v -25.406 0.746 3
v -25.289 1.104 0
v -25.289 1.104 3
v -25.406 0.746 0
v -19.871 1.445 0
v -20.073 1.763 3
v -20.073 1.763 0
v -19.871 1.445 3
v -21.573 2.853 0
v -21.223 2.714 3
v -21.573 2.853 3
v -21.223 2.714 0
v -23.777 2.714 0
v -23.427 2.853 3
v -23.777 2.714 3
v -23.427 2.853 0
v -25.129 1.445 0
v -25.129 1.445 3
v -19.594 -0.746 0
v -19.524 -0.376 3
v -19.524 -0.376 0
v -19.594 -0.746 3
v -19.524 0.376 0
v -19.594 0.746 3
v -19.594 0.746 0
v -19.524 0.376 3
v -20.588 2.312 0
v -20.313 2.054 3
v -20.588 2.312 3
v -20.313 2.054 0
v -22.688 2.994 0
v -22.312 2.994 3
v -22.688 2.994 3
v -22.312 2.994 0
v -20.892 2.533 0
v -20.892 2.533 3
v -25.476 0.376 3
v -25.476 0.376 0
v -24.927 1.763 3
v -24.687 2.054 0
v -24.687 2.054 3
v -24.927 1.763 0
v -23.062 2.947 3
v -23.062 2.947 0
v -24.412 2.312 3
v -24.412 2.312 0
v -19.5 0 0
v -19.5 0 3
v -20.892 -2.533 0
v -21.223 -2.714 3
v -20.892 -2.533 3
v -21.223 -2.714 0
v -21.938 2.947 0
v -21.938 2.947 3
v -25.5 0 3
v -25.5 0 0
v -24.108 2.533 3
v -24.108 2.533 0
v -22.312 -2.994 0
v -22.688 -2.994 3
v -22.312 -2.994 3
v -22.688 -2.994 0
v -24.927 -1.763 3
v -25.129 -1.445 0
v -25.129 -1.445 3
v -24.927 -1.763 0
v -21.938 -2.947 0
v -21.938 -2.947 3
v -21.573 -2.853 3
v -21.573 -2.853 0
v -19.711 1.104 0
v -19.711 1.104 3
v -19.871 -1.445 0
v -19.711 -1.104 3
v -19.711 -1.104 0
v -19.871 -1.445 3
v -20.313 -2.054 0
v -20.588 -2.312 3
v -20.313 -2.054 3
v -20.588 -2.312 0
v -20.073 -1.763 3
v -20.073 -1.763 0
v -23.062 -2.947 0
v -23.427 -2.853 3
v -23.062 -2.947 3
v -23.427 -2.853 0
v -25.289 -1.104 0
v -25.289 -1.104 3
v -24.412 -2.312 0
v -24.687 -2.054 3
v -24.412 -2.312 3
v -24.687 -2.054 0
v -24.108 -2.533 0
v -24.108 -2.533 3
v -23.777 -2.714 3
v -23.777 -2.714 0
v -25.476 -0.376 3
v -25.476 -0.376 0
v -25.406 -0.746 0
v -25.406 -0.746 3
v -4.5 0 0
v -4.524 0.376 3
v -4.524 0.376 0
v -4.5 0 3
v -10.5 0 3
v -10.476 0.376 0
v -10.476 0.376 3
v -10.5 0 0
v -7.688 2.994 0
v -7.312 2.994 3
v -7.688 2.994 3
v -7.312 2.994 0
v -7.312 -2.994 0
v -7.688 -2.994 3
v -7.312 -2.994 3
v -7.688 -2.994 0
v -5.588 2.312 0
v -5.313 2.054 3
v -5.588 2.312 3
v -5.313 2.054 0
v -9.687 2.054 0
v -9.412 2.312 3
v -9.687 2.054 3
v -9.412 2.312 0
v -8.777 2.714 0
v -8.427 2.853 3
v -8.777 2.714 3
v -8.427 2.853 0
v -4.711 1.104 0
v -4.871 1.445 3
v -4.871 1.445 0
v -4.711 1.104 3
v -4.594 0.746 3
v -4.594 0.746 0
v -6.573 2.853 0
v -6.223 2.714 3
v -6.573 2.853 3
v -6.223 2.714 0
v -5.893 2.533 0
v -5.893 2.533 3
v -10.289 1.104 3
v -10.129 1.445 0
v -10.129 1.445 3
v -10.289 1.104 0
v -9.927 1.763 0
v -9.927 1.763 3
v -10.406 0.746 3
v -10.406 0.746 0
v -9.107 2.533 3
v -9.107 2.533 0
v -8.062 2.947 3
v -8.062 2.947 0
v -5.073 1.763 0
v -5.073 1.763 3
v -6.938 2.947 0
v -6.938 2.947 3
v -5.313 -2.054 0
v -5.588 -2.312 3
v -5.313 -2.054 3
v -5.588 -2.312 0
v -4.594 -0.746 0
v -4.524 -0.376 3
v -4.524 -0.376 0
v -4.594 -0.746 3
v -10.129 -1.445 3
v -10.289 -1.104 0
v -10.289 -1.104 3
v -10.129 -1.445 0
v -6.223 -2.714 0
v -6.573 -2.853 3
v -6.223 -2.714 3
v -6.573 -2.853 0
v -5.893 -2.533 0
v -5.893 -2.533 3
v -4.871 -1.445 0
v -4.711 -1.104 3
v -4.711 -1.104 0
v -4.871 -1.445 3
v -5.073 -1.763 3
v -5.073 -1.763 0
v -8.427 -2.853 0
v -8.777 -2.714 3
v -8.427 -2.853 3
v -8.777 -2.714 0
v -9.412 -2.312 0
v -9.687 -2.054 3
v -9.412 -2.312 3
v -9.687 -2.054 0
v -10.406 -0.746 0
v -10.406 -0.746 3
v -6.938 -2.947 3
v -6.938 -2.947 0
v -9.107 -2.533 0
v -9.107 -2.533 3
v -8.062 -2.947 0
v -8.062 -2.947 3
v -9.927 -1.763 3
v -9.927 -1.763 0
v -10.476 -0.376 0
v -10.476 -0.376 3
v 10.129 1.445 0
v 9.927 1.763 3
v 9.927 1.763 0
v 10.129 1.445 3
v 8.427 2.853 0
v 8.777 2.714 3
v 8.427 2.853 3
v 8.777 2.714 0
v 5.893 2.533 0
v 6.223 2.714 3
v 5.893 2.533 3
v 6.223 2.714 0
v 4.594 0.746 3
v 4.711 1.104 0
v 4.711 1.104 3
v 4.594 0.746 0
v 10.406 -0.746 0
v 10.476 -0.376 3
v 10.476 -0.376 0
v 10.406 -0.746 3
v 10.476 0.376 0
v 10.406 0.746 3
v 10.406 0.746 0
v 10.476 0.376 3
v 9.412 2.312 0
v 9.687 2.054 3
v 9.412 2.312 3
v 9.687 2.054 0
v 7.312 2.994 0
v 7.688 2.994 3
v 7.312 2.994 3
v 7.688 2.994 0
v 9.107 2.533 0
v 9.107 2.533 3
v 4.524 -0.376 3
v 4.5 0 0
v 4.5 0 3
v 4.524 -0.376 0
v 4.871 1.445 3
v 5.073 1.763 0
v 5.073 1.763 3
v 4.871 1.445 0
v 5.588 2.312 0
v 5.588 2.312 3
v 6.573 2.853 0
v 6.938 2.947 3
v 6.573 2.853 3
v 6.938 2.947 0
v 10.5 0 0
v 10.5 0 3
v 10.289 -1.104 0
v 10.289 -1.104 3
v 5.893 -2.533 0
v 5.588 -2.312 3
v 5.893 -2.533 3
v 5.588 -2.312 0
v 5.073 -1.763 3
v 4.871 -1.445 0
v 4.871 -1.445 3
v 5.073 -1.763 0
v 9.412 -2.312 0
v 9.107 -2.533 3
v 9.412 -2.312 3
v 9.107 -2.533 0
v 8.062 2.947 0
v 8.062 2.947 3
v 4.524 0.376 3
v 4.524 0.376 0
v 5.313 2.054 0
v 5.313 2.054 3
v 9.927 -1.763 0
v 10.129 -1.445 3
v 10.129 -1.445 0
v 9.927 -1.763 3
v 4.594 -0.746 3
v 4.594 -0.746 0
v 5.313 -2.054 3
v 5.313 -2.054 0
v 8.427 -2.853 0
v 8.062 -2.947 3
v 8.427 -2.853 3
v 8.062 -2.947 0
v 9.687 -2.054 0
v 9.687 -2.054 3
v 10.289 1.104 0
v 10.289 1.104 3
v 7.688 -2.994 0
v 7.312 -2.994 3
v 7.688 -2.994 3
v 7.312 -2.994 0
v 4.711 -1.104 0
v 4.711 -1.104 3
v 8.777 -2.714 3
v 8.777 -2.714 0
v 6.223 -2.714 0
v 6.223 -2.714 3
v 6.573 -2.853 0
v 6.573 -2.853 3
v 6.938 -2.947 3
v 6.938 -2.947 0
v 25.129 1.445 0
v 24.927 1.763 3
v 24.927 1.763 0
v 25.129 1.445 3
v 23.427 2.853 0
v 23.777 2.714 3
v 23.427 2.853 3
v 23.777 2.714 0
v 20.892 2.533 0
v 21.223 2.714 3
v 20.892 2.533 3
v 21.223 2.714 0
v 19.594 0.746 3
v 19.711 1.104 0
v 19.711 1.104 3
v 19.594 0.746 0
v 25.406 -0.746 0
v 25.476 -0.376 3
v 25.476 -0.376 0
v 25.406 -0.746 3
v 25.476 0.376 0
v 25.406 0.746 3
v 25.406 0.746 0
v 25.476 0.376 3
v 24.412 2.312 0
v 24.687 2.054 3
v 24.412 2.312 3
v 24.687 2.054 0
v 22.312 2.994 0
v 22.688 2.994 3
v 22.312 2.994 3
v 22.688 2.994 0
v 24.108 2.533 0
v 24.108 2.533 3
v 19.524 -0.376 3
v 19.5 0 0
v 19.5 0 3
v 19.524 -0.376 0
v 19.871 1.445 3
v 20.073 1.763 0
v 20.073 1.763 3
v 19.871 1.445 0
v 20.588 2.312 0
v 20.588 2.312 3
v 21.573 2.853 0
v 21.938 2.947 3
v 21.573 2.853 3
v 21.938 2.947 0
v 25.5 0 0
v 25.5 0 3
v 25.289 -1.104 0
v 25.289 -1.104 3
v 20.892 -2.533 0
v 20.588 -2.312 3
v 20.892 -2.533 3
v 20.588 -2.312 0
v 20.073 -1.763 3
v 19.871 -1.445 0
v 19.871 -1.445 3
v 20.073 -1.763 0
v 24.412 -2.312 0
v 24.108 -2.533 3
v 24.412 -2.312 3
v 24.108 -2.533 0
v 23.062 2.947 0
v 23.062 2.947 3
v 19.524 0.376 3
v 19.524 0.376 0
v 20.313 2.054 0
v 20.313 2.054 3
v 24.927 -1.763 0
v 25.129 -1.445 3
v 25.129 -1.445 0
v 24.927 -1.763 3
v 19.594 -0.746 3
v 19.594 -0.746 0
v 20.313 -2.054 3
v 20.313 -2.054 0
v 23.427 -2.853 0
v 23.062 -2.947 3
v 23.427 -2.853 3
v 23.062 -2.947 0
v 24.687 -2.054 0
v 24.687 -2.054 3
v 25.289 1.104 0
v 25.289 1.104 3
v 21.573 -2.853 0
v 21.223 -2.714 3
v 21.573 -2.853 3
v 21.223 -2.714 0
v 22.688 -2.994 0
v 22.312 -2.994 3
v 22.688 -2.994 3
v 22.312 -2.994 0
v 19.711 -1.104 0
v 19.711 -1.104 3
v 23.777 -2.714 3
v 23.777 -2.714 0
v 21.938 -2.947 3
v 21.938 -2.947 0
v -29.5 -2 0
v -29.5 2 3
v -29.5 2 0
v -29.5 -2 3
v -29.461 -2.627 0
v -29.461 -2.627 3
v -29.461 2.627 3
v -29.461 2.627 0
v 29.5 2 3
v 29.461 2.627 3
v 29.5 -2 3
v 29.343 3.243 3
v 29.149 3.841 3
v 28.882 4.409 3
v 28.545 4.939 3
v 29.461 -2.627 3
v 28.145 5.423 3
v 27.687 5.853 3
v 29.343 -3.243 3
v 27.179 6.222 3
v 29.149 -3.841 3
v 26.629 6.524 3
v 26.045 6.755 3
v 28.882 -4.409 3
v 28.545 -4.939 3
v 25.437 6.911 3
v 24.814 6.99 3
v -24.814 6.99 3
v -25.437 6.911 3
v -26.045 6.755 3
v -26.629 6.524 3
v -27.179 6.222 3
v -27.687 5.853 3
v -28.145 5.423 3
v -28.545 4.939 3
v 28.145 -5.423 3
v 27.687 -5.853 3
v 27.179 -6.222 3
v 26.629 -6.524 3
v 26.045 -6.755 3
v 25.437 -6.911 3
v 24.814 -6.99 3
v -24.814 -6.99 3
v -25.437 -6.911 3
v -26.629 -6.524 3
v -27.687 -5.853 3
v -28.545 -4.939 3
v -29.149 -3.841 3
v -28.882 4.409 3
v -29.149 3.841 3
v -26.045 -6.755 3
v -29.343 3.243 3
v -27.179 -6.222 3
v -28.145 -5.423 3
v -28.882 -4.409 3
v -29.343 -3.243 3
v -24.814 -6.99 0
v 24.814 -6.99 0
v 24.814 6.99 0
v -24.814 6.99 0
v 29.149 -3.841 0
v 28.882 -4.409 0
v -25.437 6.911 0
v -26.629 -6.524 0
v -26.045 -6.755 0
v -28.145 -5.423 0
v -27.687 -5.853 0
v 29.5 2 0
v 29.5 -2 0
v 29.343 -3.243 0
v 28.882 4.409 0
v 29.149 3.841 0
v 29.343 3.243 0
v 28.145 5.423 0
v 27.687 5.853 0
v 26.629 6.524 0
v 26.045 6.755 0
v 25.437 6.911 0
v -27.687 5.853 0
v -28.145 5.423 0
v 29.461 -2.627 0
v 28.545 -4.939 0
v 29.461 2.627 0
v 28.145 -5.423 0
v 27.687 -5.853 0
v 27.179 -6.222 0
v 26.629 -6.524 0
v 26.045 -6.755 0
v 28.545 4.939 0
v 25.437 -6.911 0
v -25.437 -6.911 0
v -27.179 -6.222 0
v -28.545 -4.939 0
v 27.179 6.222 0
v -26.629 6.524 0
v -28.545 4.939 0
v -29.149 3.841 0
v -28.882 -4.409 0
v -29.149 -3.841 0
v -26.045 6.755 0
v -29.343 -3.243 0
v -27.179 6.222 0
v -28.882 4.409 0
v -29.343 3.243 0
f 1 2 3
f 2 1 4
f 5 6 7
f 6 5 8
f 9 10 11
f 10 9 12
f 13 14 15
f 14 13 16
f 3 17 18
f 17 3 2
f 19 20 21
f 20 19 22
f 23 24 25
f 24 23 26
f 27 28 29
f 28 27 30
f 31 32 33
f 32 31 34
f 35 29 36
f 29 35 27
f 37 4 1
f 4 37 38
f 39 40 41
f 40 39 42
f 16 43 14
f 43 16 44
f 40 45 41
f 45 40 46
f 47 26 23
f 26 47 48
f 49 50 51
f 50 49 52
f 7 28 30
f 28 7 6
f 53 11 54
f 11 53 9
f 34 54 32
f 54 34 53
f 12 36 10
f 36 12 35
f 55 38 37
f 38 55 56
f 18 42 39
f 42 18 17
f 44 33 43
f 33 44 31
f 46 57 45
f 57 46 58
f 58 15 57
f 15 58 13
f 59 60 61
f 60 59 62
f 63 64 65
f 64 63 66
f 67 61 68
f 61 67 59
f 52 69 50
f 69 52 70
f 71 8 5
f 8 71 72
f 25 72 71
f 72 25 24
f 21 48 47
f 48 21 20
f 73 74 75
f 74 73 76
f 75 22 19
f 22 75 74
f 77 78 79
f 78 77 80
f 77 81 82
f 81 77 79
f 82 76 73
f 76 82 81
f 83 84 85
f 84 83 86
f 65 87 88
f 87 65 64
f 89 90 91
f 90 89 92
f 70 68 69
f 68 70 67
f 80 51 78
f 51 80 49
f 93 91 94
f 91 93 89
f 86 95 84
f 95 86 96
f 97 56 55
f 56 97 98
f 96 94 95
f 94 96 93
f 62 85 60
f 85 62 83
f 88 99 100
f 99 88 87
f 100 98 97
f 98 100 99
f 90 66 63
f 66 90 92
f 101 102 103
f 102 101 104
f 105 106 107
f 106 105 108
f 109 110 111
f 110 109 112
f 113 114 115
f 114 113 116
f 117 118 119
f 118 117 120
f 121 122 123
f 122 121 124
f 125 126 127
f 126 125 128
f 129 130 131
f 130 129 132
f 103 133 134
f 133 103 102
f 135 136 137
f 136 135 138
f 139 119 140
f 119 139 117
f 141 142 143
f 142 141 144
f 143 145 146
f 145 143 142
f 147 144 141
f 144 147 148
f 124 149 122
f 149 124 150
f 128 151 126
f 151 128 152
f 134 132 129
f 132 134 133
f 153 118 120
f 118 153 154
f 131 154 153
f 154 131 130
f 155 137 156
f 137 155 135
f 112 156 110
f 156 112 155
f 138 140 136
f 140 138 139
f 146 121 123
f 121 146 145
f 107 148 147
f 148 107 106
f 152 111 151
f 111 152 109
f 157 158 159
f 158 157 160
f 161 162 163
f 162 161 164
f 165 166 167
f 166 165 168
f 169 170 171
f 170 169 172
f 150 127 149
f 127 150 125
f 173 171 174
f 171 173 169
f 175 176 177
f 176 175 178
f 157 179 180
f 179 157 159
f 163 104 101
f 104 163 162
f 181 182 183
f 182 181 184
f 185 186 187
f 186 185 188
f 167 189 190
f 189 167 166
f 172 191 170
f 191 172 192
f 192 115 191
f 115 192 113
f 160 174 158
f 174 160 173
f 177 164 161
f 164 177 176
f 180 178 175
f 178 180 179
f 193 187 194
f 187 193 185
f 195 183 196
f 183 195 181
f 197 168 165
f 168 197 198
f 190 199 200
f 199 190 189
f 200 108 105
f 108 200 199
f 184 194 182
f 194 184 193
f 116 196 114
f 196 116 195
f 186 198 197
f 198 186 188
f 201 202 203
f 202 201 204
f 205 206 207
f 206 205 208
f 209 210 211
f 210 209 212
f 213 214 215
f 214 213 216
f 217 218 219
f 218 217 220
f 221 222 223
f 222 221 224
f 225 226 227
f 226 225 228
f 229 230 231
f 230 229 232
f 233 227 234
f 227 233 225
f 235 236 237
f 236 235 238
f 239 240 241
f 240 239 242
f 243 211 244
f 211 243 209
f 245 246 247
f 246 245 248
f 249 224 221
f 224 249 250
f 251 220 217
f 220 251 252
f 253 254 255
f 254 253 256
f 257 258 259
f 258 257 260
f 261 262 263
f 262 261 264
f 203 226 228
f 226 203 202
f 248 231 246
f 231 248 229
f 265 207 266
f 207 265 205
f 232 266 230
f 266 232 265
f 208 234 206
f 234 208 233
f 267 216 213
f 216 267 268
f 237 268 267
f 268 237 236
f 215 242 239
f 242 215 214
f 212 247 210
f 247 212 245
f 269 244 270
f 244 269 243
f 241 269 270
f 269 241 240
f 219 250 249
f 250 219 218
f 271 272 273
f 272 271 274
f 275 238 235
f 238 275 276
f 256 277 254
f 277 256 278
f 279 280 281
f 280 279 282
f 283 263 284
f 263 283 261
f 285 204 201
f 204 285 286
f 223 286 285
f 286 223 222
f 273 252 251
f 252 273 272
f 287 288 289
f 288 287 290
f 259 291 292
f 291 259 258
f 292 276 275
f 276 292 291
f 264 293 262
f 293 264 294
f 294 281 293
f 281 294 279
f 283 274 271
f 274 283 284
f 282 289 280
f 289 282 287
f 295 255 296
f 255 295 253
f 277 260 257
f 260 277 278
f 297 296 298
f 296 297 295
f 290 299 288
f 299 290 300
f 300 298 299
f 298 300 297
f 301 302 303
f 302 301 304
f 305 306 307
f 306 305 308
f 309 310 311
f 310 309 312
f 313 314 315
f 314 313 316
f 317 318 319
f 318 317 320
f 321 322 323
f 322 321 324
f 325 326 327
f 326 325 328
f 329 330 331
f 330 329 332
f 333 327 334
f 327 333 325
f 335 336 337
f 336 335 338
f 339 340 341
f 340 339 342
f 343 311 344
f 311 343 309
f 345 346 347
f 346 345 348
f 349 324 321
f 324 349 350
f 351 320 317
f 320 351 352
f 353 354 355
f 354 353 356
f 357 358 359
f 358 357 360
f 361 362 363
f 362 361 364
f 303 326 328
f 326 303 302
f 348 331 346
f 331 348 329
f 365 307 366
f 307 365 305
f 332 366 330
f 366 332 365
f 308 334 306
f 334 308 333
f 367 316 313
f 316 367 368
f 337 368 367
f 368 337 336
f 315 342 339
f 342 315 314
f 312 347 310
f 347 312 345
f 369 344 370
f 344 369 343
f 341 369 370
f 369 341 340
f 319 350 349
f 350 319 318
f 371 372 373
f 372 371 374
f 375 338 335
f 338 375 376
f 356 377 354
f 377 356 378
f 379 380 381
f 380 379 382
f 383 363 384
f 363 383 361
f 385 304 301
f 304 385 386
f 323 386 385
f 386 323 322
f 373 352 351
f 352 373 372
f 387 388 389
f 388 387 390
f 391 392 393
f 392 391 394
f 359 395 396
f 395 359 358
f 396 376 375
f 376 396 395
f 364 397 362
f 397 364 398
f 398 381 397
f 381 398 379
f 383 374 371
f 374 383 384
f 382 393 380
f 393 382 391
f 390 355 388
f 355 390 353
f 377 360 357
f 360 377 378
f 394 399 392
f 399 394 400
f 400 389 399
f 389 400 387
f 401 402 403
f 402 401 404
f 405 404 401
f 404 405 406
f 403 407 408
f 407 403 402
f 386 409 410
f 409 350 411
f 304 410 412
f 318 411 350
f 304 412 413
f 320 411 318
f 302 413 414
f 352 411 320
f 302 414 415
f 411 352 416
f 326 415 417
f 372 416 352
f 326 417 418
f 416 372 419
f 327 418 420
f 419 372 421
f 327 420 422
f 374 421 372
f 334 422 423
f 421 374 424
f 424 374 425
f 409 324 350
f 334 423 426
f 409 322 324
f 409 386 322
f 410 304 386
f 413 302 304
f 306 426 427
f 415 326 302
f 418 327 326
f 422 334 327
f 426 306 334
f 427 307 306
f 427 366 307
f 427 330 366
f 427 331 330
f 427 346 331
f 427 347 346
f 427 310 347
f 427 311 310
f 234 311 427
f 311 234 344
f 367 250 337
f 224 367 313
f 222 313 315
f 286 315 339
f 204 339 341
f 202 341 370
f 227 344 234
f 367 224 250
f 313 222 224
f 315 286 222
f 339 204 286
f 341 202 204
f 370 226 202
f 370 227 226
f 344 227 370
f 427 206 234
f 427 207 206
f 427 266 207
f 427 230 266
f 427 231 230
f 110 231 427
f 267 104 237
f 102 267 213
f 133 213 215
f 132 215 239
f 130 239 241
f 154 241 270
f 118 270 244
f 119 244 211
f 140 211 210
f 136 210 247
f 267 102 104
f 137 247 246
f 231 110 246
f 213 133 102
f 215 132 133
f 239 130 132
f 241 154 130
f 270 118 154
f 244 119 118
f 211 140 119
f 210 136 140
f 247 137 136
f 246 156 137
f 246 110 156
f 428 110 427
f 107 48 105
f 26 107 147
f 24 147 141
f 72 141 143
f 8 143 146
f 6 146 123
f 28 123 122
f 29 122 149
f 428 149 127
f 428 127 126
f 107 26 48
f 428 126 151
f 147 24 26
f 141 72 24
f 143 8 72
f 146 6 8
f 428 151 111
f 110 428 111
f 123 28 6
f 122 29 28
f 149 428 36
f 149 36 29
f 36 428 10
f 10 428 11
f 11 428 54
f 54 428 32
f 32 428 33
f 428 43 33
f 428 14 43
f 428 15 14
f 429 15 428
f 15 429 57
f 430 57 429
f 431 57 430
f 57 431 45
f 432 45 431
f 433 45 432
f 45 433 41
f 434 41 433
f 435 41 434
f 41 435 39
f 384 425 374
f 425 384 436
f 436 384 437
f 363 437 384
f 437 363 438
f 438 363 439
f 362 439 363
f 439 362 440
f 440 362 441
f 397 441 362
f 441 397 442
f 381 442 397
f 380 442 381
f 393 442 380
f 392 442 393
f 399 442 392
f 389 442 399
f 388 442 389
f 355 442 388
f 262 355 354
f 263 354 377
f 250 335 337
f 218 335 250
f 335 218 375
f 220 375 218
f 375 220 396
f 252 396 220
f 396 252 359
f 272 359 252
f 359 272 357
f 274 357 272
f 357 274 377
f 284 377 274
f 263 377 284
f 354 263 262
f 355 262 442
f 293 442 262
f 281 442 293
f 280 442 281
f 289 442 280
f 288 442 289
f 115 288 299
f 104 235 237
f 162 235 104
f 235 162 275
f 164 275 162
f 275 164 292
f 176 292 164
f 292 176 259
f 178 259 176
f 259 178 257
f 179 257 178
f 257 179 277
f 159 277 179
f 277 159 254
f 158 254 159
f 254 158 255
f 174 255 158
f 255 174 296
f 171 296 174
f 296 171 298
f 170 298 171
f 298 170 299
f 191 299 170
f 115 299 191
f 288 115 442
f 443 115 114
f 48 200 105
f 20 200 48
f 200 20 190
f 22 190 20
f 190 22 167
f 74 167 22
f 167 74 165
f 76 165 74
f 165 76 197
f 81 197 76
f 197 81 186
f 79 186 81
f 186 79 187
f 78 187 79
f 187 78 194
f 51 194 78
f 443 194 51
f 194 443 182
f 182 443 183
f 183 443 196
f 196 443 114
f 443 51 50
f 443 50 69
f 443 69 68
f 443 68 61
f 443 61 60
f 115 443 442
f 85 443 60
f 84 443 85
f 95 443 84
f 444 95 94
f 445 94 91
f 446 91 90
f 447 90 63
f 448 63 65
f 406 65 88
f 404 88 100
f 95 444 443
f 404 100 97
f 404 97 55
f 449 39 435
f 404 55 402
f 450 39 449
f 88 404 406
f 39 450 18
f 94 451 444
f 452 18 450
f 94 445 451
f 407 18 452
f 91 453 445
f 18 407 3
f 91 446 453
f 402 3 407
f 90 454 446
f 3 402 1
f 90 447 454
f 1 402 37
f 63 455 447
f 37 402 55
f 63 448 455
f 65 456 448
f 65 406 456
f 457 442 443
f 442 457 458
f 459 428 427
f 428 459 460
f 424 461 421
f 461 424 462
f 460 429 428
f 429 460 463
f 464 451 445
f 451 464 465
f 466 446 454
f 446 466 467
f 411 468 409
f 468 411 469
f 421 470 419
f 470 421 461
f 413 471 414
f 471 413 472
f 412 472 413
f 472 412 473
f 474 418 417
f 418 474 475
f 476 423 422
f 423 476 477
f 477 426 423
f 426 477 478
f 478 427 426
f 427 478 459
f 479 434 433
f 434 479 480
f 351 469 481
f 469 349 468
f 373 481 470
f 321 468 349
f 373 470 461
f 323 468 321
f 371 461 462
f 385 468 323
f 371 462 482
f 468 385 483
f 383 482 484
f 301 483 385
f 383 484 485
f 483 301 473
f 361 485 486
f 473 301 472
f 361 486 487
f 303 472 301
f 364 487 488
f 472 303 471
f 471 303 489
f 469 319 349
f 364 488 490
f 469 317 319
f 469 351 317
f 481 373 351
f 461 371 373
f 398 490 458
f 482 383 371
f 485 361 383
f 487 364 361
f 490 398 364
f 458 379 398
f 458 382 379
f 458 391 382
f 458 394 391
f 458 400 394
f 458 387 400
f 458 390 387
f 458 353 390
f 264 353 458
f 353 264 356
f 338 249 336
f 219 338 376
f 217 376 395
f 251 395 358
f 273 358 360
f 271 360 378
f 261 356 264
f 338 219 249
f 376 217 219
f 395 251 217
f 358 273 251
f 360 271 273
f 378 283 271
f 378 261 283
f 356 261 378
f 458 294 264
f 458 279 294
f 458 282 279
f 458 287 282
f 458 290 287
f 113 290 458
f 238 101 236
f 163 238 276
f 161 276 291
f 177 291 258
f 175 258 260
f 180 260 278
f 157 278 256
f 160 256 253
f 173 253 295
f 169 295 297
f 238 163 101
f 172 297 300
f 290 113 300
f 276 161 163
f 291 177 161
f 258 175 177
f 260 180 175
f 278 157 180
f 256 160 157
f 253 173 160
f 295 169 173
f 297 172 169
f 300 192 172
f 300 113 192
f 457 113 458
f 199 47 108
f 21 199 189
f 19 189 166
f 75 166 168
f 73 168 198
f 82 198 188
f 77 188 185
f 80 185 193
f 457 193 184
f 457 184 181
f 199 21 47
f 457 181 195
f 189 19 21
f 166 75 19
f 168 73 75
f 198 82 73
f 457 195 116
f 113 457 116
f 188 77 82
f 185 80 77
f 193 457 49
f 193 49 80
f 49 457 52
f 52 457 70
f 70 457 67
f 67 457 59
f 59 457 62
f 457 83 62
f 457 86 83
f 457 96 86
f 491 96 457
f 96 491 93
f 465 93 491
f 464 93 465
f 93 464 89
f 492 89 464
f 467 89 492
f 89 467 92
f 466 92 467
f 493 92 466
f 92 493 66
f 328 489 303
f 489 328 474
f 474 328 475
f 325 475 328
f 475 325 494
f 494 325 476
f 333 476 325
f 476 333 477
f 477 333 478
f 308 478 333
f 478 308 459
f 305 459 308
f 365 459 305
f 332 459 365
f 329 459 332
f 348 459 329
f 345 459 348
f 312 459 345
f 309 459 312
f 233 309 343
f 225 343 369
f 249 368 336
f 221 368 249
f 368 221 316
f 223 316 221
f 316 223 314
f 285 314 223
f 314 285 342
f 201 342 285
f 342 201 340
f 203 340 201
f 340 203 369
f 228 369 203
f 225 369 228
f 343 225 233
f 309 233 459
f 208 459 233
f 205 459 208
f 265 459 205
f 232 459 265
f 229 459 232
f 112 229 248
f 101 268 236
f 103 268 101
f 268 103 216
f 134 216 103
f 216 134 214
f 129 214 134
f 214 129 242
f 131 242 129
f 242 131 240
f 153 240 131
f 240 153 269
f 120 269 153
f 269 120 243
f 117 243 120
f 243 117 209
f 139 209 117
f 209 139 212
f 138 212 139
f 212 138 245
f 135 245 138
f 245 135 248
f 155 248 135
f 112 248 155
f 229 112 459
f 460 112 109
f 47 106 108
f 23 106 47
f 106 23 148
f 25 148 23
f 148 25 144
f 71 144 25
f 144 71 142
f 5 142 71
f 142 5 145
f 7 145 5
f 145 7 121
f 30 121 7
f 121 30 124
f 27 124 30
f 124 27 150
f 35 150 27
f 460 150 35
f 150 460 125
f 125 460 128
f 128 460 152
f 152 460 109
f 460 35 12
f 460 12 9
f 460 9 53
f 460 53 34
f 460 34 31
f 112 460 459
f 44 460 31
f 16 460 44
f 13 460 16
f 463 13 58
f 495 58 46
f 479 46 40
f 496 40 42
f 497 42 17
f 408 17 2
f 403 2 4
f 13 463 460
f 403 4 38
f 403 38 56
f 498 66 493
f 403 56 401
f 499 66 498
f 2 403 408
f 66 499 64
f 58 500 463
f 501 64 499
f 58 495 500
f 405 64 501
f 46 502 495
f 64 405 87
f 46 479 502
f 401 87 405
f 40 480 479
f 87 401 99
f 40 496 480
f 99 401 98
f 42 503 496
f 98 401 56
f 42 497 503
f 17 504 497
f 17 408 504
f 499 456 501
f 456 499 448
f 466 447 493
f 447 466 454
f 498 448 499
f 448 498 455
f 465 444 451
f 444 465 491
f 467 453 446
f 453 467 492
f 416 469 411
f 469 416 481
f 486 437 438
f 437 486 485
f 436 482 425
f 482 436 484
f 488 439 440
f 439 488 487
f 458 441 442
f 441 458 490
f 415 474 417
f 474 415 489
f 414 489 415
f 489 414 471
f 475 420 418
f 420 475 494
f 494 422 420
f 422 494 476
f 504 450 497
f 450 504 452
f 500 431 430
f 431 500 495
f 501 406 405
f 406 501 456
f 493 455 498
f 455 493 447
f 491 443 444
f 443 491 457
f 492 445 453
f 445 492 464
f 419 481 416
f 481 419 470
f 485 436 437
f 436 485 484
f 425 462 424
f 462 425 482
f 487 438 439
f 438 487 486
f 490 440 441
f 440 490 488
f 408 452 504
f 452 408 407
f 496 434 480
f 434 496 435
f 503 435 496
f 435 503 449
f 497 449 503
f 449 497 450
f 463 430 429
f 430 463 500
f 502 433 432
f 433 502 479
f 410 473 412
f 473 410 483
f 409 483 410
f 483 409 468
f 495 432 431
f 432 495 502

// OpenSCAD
// Generated by SolidPython 1.1.3 on 2023-03-12 21:54:24
$fn = 50;


difference() {
	union() {
		translate(v = [0, 0, 0]) {
			rotate(a = [0, 0, 0]) {
				hull() {
					translate(v = [-24.5000000000, 2.0000000000, 0]) {
						rotate(a = [0, 0, 0]) {
							translate(v = [0, 0, 0]) {
								rotate(a = [0, 0, 0]) {
									cylinder(h = 3, r = 5);
								}
							}
						}
					}
					translate(v = [24.5000000000, 2.0000000000, 0]) {
						rotate(a = [0, 0, 0]) {
							translate(v = [0, 0, 0]) {
								rotate(a = [0, 0, 0]) {
									cylinder(h = 3, r = 5);
								}
							}
						}
					}
					translate(v = [-24.5000000000, -2.0000000000, 0]) {
						rotate(a = [0, 0, 0]) {
							translate(v = [0, 0, 0]) {
								rotate(a = [0, 0, 0]) {
									cylinder(h = 3, r = 5);
								}
							}
						}
					}
					translate(v = [24.5000000000, -2.0000000000, 0]) {
						rotate(a = [0, 0, 0]) {
							translate(v = [0, 0, 0]) {
								rotate(a = [0, 0, 0]) {
									cylinder(h = 3, r = 5);
								}
							}
						}
					}
				}
			}
		}
	}
	union() {
		translate(v = [-22.5000000000, 0.0000000000, 0]) {
			rotate(a = [0, 0, 0]) {
				translate(v = [0, 0, -50]) {
					rotate(a = [0, 0, 0]) {
						cylinder(h = 100, r = 3.0000000000);
					}
				}
			}
		}
		translate(v = [-7.5000000000, 0.0000000000, 0]) {
			rotate(a = [0, 0, 0]) {
				translate(v = [0, 0, -50]) {
					rotate(a = [0, 0, 0]) {
						cylinder(h = 100, r = 3.0000000000);
					}
				}
			}
		}
		translate(v = [7.5000000000, 0.0000000000, 0]) {
			rotate(a = [0, 0, 0]) {
				translate(v = [0, 0, -50]) {
					rotate(a = [0, 0, 0]) {
						cylinder(h = 100, r = 3.0000000000);
					}
				}
			}
		}
		translate(v = [22.5000000000, 0.0000000000, 0]) {
			rotate(a = [0, 0, 0]) {
				translate(v = [0, 0, -50]) {
					rotate(a = [0, 0, 0]) {
						cylinder(h = 100, r = 3.0000000000);
					}
				}
			}
		}
	}
}
/***********************************************
*********      SolidPython code:      **********
************************************************
 
from solid import *
import os
import subprocess

import oomB

import opsc_library_gen

mode = "laser"
#mode = "3d_print"

defined_objects = {}

radius_dict = {}
countersunk_dict = {}


def set_mode(m):
    global mode
    mode = m
    radius_dict['M6'] = 6.5/2
    radius_dict['M3'] = 3.3/2
    if mode == "laser":
        radius_dict['M6'] = 6/2
        radius_dict['M3'] = 3/2

    countersunk_dict['M3'] = {}
    countersunk_dict['M3']['little_rad'] = radius_dict['M3']
    countersunk_dict['M3']['big_rad'] = (5.5+0.6)/2
    if mode == "laser":
        countersunk_dict['M3']['big_rad'] = (4.75+0.6)/2
        countersunk_dict['M3']['little_rad'] = (4.75+0.6)/2

    countersunk_dict['M3']['height'] = 1.7


def opsc_make_object(filename, objects, save_type="none",resolution=50, layers = 1, tilediff = 200, mode="laser", overwrite=True):
    if overwrite or not os.path.exists(filename):
        set_mode(mode)
        save_type = save_type.lower()
        os.makedirs(os.path.dirname(filename), exist_ok=True)
        final_object = opsc_get_object(objects, mode = mode)
        # Save the final object to the specified filename    
        scad_render_to_file(final_object, filename, file_header='$fn = %s;' % resolution, include_orig_code=True)
        if mode == "laser":
            filename_laser = filename.replace(".scad","-flat.scad")
            scad_render_to_file(getLaser(final_object, layers=layers, tilediff=tilediff), filename_laser, file_header='$fn = %s;' % resolution, include_orig_code=True)
            if save_type == "all":
                saveToAll(filename_laser)
            elif save_type == "dxf":
                saveToDxf(filename_laser)
        if save_type == "all":
            saveToAll(filename)
        elif save_type == "dxf":
            saveToDxf(filename)


def opsc_get_object(objects, mode = "laser"):
    # Create the solidpython objects only include the positive objects and if they don't have inclusion or their inclusion is either all or mode
    # Initialize an empty list to store the results
    positive_objects = []

    # Iterate over the "objects" list
    for obj in objects:
        # Check if the current object has a "type" key with a value of "positive"
        if obj['type'] == 'positive':
            # Check if the current object has an "inclusion" key and its value matches "mode",
            # or if the current object does not have an "inclusion" key at all
            if not 'inclusion' in obj or obj['inclusion'] == "all" or obj['inclusion'] == mode:
                # Call the "get_opsc_item" function with the current object as an argument
                opsc_item = get_opsc_item(obj)
                # Add the result to the "positive_objects" list
                positive_objects.append(opsc_item)
# Initialize an empty list to store the results
    negative_objects = []

    # Iterate over the "objects" list
    for obj in objects:
        # Check if the current object has a "type" key with a value of "negative"
        if obj['type'] == 'negative':
            # Check if the current object has an "inclusion" key and its value matches "mode",
            # or if the current object does not have an "inclusion" key at all
            if not 'inclusion' in obj or obj['inclusion'] == "all" or obj['inclusion'] == mode:
                # Call the "get_opsc_item" function with the current object as an argument
                opsc_item = get_opsc_item(obj)
                # Add the result to the "negative_objects" list
                negative_objects.append(opsc_item)
    
    #positive_objects = [get_opsc_item(obj) for obj in objects if obj['type'] == 'positive']
    #negative_objects = [get_opsc_item(obj) for obj in objects if obj['type'] == 'negative']
    # Union the positive objects
    positive_object = union()(*positive_objects)
    # Union the negative objects
    negative_object = union()(*negative_objects)
    # Create the final object by subtracting the negative objects from the positive objects
    return difference()(positive_object, negative_object)

def get_opsc_item(params):
    # A dictionary to map radius string values to numerical values
    #radius_dict = {'small': 5, 'medium': 10, 'large': 15}
    # An array of function names for basic shapes
    basic_shapes = ['cube', 'sphere', 'cylinder']
    
    # An array of function names for other shapes
    other_shapes = ['hole', 'slot', 'rounded_rectangle', 'countersunk']
    


    # Convert radius to r if present, and remove radius from the params dictionary
    if 'radius' in params:
        if isinstance(params['radius'], str):
            # Use the radius_dict to map the radius string value to a numerical value
            params['r'] = radius_dict[params['radius']]
        else:
            params['r'] = params['radius']
        del params['radius']
    

    # Check if the object type is a basic shape
    if params['shape'] in basic_shapes:
        # Remove shape and unexpected dictionary values
        allowed_keys = {'size', 'r', 'r1', 'r2', 'd', 'h', 'rw', 'rh', 'dw', 'dh'}
        shape_params = {k: v for k, v in params.items() if k in allowed_keys}

        # Call the corresponding function for the shape parameter, using ** notation to pass the shape_params dictionary as keyword arguments
        return get_opsc_transform(params,globals()[params['shape']](**shape_params))
    
    # If the object type is not a basic shape, check if it's a defined object or one of the other shapes
    elif params['shape'] in other_shapes:
        # Call the corresponding function for the shape parameter, passing the params dictionary as an argument
        p2 = copy.deepcopy(params)
        p2["pos"] = [0,0,0]
        return get_opsc_transform(params,globals()[params['shape']](p2))
    
    # If the object is not a basic shape or a defined object, try to import it from a .scad file
    else:
        obj = defined_objects[params['shape']]
        return get_opsc_transform(params,obj)

def get_opsc_transform(params, solid_obj):
    # Rotate the object based on the 'rot' field in the params dictionary, or the 'rotX', 'rotY', and 'rotZ' fields if 'rot' is not present
    rot = params.get('rot', [])
    if rot:
        rotX, rotY, rotZ = rot
    else:
        rotX = params.get('rotX', 0)
        rotY = params.get('rotY', 0)
        rotZ = params.get('rotZ', 0)
    solid_obj = rotate([rotX, rotY, rotZ])(solid_obj)

    # Translate the object based on the 'pos' field in the params dictionary, or the 'x', 'y', and 'z' fields if 'pos' is not present
    pos = params.get('pos', [])
    if pos:
        x, y, z = pos
    else:
        x = params.get('x', 0)
        y = params.get('y', 0)
        z = params.get('z', 0)
    solid_obj = translate([x, y, z])(solid_obj)
    return solid_obj


import random

def opsc_easy_array(type, shape, repeats, pos_start, shift_arr, **kwargs):
    for i in range(0,3):
        repeats.append(1)
        pos_start.append(0)
        shift_arr.append(0)
    return_objects = []

    for x in range(0,repeats[0]):
        for y in range(0,repeats[1]):
            for z in range(0,repeats[2]):
                return_objects.append(opsc_easy(type, shape, pos=[pos_start[0]+x*shift_arr[0],pos_start[1]+y*shift_arr[1],pos_start[2]+z*shift_arr[2]], **kwargs))
    return return_objects                



def opsc_easy(type, shape, **kwargs):
    obj = {
        'type': type,
        'shape': shape
    }
    for param in ['size', 'r', 'r1', 'r2', 'd', 'h', 'rw', 'rh', 'dw', 'dh', 'pos', 'x', 'y', 'z', 'rot', 'rotX', 'rotY', 'rotZ', "w", "inclusion"]:
        if param in kwargs:
            obj[param] = kwargs[param]
    return obj

def hole(params):
    p2 = copy.deepcopy(params)  
    # Check if the radius is a string and replace it with the corresponding value from the dictionary
    if isinstance(p2['r'], str):
        p2['r'] = radius_dict[p2['r']]
    
    # Set the height to 100 if not specified
    if 'h' not in p2:
        p2['h'] = 100
        p2["pos"] = [0,0,-50]
    p2["center"] = True
    # Create the cylinder object
    p2["shape"] = "cylinder"
    p2["type"] = "positive"

    return get_opsc_item(p2)

import copy

def countersunk(params):
    p2 = copy.deepcopy(params)
    counter_rad = p2['r']
    p2['r'] = radius_dict[p2['r']]
    hp = copy.deepcopy(p2)
    hp["type"] = "positive"
    hp["shape"] = "hole"
    del hp["rot"]
    hol = get_opsc_item(hp)
    
    cp = copy.deepcopy(p2)
    cp["h"] = countersunk_dict[counter_rad]["height"]
    cp["r2"] = countersunk_dict[counter_rad]["little_rad"]
    cp["r1"] = countersunk_dict[counter_rad]["big_rad"]
    del cp["r"]
    del cp["rot"]
    cp["type"] = "positive"
    cp["shape"] = "cylinder"
    cp["pos"] = [0,0,0]

    top = get_opsc_item(cp)
    return union()(hol,top)



def slot(params):  
    p2 = copy.deepcopy(params) 
    if isinstance(p2['r'], str):
        p2['r'] = radius_dict[p2['r']]
    p2["type"] = "positive"
    p2["shape"] = "hole"
    del p2["rot"]
    p2["pos"] = [0,0,0]
    left = copy.deepcopy(p2)
    right = copy.deepcopy(p2)
    left["pos"][0] = p2["w"] / 2 - p2["r"] 
    
    right["pos"][0] = -p2["w"] / 2 + p2["r"] 
    pass
    leftObj = get_opsc_item(left)
    rightObj = get_opsc_item(right)
    return hull()(leftObj, rightObj)

def rounded_rectangle(params):   
    p2 = copy.deepcopy(params) 
    p2["h"] = p2["size"][2]
    p2["pos"] = p2.get("pos", [0, 0, 0]) 
    p2["type"] = "positive"
    p2["shape"] = "hole"
    p2["pos"] = [0,0,0]
    
    if 'rot' in p2:
        del p2["rot"]   
    if 'r' not in p2:
        p2["r"] = 5 
    tl = copy.deepcopy(p2)
    tr = copy.deepcopy(p2)
    bl = copy.deepcopy(p2)
    br = copy.deepcopy(p2)
    tl["pos"][0] = -(p2["size"][0] - p2["r"]*2)/2
    tl["pos"][1] = (p2["size"][1] - p2["r"]*2)/2
    tr["pos"][0] = (p2["size"][0] - p2["r"]*2)/2
    tr["pos"][1] = (p2["size"][1] - p2["r"]*2)/2
    bl["pos"][0] = -(p2["size"][0] - p2["r"]*2)/2
    bl["pos"][1] = -(p2["size"][1] - p2["r"]*2)/2
    br["pos"][0] = (p2["size"][0] - p2["r"]*2)/2
    br["pos"][1] = -(p2["size"][1] - p2["r"]*2)/2
    del tl["size"]
    del tr["size"]
    del bl["size"]
    del br["size"]
    tlo = get_opsc_item(tl)
    tro = get_opsc_item(tr)
    blo = get_opsc_item(bl)
    bro = get_opsc_item(br)    
    return hull()(tlo, tro, blo, bro)



def import_scad_object(filename):
    # Import the .scad file and convert it to a solidpython object
    #filename = "parts"
    obj = import_scad(filename)
    return obj.main()
    


import os
import solid as solidpython

# A dictionary to store the defined objects


def load_scad_objects():
    opsc_library_gen.gen_library(defined_objects)

import random

def test(num_objects):
    objects = []
    for i in range(num_objects):
        # Choose a random shape
        #shape = random.choice(['cube', 'sphere', 'cylinder', 'hole', 'slot', "rounded_rectangle"])
        shape = random.choice(["rounded_rectangle"])

        # Choose a random type
        type = random.choice(['positive', 'negative'])
        
        # Create an empty object dictionary
        obj = {'shape': shape, 'type': type}
        
        # Set shape-specific parameters
        if obj['shape'] in ['cube']:
            obj['size'] =  [random.uniform(5, 15), random.uniform(5, 15), random.uniform(5, 15)]
        if obj['shape'] in ['rounded_rectangle']:
            obj['size'] =  [random.uniform(5, 15), random.uniform(5, 15), random.uniform(5, 15)]
            obj['r'] = random.uniform(0.5, 5)
        elif obj['shape'] == 'sphere':
            obj['r'] = random.uniform(5, 15)
        elif obj['shape'] in ['cylinder', 'hole']:
            obj['r'] = random.uniform(0.5, 5)
            obj['h'] = random.uniform(5, 15)
        elif obj['shape'] == 'slot':
            obj['r'] = random.uniform(0.5, 5)
            obj['h'] = random.uniform(5, 15)
            obj['w'] = random.uniform(5, 15)
        
        # Set a random position and rotation
        obj['pos'] = [random.uniform(-20, 20), random.uniform(-20, 20), random.uniform(-20, 20)]
        obj['rot'] = [random.uniform(-180, 180), random.uniform(-180, 180), random.uniform(-180, 180)]
        
        # Add the object to the list
        objects.append(obj)
    return objects

####### old file saving
def saveToAll(fileIn):
    saveToDxf(fileIn)
    saveToPng(fileIn)
    saveToStl(fileIn)
    saveToSvg(fileIn)

def saveToDxf(fileIn, fileOut="", copy_to_laser=True):
    if fileOut == "":
        fileOut = fileIn.replace(".scad",".dxf")
    saveToFile(fileIn, fileOut)


    
def saveToPng(fileIn, fileOut="",extra="--render"):
    if fileOut == "":
        fileOut = fileIn.replace(".scad",".png")
    saveToFile(fileIn, fileOut)

def saveToStl(fileIn, fileOut=""):
    if fileOut == "":
        fileOut = fileIn.replace(".scad",".stl")
    saveToFile(fileIn, fileOut)
    
def saveToSvg(fileIn, fileOut=""):
    if fileOut == "":
        fileOut = fileIn.replace(".scad",".svg")
    saveToFile(fileIn, fileOut)

def saveToFile(fileIn, fileOut,extra=""):
    #extra = extra + " --colorscheme Tomorrow"

    launchStr = 'openscad -o "' + fileOut + '"' + extra + ' "' + fileIn + '"'
    if ".png" in fileOut:
        launchStr = launchStr + " --render"
    print("            saveToFile launch string: " + launchStr)
    subprocess.run(launchStr)
    x=0

def getLaser(final_object,start=1.5,layers=1,thickness=3,tilediff=200):
        rv= []

        for x in range(layers):
            rv.append(translate([0,x*tilediff,0])(
                    projection()(
                        intersection()(translate([-500,-500,start+x*thickness])(cube(size=[1000,1000,0.1])),
                            final_object
                        )
                    )
            )
            )
            
        return union()(rv)

set_mode("laser")
load_scad_objects() 
 
************************************************/
